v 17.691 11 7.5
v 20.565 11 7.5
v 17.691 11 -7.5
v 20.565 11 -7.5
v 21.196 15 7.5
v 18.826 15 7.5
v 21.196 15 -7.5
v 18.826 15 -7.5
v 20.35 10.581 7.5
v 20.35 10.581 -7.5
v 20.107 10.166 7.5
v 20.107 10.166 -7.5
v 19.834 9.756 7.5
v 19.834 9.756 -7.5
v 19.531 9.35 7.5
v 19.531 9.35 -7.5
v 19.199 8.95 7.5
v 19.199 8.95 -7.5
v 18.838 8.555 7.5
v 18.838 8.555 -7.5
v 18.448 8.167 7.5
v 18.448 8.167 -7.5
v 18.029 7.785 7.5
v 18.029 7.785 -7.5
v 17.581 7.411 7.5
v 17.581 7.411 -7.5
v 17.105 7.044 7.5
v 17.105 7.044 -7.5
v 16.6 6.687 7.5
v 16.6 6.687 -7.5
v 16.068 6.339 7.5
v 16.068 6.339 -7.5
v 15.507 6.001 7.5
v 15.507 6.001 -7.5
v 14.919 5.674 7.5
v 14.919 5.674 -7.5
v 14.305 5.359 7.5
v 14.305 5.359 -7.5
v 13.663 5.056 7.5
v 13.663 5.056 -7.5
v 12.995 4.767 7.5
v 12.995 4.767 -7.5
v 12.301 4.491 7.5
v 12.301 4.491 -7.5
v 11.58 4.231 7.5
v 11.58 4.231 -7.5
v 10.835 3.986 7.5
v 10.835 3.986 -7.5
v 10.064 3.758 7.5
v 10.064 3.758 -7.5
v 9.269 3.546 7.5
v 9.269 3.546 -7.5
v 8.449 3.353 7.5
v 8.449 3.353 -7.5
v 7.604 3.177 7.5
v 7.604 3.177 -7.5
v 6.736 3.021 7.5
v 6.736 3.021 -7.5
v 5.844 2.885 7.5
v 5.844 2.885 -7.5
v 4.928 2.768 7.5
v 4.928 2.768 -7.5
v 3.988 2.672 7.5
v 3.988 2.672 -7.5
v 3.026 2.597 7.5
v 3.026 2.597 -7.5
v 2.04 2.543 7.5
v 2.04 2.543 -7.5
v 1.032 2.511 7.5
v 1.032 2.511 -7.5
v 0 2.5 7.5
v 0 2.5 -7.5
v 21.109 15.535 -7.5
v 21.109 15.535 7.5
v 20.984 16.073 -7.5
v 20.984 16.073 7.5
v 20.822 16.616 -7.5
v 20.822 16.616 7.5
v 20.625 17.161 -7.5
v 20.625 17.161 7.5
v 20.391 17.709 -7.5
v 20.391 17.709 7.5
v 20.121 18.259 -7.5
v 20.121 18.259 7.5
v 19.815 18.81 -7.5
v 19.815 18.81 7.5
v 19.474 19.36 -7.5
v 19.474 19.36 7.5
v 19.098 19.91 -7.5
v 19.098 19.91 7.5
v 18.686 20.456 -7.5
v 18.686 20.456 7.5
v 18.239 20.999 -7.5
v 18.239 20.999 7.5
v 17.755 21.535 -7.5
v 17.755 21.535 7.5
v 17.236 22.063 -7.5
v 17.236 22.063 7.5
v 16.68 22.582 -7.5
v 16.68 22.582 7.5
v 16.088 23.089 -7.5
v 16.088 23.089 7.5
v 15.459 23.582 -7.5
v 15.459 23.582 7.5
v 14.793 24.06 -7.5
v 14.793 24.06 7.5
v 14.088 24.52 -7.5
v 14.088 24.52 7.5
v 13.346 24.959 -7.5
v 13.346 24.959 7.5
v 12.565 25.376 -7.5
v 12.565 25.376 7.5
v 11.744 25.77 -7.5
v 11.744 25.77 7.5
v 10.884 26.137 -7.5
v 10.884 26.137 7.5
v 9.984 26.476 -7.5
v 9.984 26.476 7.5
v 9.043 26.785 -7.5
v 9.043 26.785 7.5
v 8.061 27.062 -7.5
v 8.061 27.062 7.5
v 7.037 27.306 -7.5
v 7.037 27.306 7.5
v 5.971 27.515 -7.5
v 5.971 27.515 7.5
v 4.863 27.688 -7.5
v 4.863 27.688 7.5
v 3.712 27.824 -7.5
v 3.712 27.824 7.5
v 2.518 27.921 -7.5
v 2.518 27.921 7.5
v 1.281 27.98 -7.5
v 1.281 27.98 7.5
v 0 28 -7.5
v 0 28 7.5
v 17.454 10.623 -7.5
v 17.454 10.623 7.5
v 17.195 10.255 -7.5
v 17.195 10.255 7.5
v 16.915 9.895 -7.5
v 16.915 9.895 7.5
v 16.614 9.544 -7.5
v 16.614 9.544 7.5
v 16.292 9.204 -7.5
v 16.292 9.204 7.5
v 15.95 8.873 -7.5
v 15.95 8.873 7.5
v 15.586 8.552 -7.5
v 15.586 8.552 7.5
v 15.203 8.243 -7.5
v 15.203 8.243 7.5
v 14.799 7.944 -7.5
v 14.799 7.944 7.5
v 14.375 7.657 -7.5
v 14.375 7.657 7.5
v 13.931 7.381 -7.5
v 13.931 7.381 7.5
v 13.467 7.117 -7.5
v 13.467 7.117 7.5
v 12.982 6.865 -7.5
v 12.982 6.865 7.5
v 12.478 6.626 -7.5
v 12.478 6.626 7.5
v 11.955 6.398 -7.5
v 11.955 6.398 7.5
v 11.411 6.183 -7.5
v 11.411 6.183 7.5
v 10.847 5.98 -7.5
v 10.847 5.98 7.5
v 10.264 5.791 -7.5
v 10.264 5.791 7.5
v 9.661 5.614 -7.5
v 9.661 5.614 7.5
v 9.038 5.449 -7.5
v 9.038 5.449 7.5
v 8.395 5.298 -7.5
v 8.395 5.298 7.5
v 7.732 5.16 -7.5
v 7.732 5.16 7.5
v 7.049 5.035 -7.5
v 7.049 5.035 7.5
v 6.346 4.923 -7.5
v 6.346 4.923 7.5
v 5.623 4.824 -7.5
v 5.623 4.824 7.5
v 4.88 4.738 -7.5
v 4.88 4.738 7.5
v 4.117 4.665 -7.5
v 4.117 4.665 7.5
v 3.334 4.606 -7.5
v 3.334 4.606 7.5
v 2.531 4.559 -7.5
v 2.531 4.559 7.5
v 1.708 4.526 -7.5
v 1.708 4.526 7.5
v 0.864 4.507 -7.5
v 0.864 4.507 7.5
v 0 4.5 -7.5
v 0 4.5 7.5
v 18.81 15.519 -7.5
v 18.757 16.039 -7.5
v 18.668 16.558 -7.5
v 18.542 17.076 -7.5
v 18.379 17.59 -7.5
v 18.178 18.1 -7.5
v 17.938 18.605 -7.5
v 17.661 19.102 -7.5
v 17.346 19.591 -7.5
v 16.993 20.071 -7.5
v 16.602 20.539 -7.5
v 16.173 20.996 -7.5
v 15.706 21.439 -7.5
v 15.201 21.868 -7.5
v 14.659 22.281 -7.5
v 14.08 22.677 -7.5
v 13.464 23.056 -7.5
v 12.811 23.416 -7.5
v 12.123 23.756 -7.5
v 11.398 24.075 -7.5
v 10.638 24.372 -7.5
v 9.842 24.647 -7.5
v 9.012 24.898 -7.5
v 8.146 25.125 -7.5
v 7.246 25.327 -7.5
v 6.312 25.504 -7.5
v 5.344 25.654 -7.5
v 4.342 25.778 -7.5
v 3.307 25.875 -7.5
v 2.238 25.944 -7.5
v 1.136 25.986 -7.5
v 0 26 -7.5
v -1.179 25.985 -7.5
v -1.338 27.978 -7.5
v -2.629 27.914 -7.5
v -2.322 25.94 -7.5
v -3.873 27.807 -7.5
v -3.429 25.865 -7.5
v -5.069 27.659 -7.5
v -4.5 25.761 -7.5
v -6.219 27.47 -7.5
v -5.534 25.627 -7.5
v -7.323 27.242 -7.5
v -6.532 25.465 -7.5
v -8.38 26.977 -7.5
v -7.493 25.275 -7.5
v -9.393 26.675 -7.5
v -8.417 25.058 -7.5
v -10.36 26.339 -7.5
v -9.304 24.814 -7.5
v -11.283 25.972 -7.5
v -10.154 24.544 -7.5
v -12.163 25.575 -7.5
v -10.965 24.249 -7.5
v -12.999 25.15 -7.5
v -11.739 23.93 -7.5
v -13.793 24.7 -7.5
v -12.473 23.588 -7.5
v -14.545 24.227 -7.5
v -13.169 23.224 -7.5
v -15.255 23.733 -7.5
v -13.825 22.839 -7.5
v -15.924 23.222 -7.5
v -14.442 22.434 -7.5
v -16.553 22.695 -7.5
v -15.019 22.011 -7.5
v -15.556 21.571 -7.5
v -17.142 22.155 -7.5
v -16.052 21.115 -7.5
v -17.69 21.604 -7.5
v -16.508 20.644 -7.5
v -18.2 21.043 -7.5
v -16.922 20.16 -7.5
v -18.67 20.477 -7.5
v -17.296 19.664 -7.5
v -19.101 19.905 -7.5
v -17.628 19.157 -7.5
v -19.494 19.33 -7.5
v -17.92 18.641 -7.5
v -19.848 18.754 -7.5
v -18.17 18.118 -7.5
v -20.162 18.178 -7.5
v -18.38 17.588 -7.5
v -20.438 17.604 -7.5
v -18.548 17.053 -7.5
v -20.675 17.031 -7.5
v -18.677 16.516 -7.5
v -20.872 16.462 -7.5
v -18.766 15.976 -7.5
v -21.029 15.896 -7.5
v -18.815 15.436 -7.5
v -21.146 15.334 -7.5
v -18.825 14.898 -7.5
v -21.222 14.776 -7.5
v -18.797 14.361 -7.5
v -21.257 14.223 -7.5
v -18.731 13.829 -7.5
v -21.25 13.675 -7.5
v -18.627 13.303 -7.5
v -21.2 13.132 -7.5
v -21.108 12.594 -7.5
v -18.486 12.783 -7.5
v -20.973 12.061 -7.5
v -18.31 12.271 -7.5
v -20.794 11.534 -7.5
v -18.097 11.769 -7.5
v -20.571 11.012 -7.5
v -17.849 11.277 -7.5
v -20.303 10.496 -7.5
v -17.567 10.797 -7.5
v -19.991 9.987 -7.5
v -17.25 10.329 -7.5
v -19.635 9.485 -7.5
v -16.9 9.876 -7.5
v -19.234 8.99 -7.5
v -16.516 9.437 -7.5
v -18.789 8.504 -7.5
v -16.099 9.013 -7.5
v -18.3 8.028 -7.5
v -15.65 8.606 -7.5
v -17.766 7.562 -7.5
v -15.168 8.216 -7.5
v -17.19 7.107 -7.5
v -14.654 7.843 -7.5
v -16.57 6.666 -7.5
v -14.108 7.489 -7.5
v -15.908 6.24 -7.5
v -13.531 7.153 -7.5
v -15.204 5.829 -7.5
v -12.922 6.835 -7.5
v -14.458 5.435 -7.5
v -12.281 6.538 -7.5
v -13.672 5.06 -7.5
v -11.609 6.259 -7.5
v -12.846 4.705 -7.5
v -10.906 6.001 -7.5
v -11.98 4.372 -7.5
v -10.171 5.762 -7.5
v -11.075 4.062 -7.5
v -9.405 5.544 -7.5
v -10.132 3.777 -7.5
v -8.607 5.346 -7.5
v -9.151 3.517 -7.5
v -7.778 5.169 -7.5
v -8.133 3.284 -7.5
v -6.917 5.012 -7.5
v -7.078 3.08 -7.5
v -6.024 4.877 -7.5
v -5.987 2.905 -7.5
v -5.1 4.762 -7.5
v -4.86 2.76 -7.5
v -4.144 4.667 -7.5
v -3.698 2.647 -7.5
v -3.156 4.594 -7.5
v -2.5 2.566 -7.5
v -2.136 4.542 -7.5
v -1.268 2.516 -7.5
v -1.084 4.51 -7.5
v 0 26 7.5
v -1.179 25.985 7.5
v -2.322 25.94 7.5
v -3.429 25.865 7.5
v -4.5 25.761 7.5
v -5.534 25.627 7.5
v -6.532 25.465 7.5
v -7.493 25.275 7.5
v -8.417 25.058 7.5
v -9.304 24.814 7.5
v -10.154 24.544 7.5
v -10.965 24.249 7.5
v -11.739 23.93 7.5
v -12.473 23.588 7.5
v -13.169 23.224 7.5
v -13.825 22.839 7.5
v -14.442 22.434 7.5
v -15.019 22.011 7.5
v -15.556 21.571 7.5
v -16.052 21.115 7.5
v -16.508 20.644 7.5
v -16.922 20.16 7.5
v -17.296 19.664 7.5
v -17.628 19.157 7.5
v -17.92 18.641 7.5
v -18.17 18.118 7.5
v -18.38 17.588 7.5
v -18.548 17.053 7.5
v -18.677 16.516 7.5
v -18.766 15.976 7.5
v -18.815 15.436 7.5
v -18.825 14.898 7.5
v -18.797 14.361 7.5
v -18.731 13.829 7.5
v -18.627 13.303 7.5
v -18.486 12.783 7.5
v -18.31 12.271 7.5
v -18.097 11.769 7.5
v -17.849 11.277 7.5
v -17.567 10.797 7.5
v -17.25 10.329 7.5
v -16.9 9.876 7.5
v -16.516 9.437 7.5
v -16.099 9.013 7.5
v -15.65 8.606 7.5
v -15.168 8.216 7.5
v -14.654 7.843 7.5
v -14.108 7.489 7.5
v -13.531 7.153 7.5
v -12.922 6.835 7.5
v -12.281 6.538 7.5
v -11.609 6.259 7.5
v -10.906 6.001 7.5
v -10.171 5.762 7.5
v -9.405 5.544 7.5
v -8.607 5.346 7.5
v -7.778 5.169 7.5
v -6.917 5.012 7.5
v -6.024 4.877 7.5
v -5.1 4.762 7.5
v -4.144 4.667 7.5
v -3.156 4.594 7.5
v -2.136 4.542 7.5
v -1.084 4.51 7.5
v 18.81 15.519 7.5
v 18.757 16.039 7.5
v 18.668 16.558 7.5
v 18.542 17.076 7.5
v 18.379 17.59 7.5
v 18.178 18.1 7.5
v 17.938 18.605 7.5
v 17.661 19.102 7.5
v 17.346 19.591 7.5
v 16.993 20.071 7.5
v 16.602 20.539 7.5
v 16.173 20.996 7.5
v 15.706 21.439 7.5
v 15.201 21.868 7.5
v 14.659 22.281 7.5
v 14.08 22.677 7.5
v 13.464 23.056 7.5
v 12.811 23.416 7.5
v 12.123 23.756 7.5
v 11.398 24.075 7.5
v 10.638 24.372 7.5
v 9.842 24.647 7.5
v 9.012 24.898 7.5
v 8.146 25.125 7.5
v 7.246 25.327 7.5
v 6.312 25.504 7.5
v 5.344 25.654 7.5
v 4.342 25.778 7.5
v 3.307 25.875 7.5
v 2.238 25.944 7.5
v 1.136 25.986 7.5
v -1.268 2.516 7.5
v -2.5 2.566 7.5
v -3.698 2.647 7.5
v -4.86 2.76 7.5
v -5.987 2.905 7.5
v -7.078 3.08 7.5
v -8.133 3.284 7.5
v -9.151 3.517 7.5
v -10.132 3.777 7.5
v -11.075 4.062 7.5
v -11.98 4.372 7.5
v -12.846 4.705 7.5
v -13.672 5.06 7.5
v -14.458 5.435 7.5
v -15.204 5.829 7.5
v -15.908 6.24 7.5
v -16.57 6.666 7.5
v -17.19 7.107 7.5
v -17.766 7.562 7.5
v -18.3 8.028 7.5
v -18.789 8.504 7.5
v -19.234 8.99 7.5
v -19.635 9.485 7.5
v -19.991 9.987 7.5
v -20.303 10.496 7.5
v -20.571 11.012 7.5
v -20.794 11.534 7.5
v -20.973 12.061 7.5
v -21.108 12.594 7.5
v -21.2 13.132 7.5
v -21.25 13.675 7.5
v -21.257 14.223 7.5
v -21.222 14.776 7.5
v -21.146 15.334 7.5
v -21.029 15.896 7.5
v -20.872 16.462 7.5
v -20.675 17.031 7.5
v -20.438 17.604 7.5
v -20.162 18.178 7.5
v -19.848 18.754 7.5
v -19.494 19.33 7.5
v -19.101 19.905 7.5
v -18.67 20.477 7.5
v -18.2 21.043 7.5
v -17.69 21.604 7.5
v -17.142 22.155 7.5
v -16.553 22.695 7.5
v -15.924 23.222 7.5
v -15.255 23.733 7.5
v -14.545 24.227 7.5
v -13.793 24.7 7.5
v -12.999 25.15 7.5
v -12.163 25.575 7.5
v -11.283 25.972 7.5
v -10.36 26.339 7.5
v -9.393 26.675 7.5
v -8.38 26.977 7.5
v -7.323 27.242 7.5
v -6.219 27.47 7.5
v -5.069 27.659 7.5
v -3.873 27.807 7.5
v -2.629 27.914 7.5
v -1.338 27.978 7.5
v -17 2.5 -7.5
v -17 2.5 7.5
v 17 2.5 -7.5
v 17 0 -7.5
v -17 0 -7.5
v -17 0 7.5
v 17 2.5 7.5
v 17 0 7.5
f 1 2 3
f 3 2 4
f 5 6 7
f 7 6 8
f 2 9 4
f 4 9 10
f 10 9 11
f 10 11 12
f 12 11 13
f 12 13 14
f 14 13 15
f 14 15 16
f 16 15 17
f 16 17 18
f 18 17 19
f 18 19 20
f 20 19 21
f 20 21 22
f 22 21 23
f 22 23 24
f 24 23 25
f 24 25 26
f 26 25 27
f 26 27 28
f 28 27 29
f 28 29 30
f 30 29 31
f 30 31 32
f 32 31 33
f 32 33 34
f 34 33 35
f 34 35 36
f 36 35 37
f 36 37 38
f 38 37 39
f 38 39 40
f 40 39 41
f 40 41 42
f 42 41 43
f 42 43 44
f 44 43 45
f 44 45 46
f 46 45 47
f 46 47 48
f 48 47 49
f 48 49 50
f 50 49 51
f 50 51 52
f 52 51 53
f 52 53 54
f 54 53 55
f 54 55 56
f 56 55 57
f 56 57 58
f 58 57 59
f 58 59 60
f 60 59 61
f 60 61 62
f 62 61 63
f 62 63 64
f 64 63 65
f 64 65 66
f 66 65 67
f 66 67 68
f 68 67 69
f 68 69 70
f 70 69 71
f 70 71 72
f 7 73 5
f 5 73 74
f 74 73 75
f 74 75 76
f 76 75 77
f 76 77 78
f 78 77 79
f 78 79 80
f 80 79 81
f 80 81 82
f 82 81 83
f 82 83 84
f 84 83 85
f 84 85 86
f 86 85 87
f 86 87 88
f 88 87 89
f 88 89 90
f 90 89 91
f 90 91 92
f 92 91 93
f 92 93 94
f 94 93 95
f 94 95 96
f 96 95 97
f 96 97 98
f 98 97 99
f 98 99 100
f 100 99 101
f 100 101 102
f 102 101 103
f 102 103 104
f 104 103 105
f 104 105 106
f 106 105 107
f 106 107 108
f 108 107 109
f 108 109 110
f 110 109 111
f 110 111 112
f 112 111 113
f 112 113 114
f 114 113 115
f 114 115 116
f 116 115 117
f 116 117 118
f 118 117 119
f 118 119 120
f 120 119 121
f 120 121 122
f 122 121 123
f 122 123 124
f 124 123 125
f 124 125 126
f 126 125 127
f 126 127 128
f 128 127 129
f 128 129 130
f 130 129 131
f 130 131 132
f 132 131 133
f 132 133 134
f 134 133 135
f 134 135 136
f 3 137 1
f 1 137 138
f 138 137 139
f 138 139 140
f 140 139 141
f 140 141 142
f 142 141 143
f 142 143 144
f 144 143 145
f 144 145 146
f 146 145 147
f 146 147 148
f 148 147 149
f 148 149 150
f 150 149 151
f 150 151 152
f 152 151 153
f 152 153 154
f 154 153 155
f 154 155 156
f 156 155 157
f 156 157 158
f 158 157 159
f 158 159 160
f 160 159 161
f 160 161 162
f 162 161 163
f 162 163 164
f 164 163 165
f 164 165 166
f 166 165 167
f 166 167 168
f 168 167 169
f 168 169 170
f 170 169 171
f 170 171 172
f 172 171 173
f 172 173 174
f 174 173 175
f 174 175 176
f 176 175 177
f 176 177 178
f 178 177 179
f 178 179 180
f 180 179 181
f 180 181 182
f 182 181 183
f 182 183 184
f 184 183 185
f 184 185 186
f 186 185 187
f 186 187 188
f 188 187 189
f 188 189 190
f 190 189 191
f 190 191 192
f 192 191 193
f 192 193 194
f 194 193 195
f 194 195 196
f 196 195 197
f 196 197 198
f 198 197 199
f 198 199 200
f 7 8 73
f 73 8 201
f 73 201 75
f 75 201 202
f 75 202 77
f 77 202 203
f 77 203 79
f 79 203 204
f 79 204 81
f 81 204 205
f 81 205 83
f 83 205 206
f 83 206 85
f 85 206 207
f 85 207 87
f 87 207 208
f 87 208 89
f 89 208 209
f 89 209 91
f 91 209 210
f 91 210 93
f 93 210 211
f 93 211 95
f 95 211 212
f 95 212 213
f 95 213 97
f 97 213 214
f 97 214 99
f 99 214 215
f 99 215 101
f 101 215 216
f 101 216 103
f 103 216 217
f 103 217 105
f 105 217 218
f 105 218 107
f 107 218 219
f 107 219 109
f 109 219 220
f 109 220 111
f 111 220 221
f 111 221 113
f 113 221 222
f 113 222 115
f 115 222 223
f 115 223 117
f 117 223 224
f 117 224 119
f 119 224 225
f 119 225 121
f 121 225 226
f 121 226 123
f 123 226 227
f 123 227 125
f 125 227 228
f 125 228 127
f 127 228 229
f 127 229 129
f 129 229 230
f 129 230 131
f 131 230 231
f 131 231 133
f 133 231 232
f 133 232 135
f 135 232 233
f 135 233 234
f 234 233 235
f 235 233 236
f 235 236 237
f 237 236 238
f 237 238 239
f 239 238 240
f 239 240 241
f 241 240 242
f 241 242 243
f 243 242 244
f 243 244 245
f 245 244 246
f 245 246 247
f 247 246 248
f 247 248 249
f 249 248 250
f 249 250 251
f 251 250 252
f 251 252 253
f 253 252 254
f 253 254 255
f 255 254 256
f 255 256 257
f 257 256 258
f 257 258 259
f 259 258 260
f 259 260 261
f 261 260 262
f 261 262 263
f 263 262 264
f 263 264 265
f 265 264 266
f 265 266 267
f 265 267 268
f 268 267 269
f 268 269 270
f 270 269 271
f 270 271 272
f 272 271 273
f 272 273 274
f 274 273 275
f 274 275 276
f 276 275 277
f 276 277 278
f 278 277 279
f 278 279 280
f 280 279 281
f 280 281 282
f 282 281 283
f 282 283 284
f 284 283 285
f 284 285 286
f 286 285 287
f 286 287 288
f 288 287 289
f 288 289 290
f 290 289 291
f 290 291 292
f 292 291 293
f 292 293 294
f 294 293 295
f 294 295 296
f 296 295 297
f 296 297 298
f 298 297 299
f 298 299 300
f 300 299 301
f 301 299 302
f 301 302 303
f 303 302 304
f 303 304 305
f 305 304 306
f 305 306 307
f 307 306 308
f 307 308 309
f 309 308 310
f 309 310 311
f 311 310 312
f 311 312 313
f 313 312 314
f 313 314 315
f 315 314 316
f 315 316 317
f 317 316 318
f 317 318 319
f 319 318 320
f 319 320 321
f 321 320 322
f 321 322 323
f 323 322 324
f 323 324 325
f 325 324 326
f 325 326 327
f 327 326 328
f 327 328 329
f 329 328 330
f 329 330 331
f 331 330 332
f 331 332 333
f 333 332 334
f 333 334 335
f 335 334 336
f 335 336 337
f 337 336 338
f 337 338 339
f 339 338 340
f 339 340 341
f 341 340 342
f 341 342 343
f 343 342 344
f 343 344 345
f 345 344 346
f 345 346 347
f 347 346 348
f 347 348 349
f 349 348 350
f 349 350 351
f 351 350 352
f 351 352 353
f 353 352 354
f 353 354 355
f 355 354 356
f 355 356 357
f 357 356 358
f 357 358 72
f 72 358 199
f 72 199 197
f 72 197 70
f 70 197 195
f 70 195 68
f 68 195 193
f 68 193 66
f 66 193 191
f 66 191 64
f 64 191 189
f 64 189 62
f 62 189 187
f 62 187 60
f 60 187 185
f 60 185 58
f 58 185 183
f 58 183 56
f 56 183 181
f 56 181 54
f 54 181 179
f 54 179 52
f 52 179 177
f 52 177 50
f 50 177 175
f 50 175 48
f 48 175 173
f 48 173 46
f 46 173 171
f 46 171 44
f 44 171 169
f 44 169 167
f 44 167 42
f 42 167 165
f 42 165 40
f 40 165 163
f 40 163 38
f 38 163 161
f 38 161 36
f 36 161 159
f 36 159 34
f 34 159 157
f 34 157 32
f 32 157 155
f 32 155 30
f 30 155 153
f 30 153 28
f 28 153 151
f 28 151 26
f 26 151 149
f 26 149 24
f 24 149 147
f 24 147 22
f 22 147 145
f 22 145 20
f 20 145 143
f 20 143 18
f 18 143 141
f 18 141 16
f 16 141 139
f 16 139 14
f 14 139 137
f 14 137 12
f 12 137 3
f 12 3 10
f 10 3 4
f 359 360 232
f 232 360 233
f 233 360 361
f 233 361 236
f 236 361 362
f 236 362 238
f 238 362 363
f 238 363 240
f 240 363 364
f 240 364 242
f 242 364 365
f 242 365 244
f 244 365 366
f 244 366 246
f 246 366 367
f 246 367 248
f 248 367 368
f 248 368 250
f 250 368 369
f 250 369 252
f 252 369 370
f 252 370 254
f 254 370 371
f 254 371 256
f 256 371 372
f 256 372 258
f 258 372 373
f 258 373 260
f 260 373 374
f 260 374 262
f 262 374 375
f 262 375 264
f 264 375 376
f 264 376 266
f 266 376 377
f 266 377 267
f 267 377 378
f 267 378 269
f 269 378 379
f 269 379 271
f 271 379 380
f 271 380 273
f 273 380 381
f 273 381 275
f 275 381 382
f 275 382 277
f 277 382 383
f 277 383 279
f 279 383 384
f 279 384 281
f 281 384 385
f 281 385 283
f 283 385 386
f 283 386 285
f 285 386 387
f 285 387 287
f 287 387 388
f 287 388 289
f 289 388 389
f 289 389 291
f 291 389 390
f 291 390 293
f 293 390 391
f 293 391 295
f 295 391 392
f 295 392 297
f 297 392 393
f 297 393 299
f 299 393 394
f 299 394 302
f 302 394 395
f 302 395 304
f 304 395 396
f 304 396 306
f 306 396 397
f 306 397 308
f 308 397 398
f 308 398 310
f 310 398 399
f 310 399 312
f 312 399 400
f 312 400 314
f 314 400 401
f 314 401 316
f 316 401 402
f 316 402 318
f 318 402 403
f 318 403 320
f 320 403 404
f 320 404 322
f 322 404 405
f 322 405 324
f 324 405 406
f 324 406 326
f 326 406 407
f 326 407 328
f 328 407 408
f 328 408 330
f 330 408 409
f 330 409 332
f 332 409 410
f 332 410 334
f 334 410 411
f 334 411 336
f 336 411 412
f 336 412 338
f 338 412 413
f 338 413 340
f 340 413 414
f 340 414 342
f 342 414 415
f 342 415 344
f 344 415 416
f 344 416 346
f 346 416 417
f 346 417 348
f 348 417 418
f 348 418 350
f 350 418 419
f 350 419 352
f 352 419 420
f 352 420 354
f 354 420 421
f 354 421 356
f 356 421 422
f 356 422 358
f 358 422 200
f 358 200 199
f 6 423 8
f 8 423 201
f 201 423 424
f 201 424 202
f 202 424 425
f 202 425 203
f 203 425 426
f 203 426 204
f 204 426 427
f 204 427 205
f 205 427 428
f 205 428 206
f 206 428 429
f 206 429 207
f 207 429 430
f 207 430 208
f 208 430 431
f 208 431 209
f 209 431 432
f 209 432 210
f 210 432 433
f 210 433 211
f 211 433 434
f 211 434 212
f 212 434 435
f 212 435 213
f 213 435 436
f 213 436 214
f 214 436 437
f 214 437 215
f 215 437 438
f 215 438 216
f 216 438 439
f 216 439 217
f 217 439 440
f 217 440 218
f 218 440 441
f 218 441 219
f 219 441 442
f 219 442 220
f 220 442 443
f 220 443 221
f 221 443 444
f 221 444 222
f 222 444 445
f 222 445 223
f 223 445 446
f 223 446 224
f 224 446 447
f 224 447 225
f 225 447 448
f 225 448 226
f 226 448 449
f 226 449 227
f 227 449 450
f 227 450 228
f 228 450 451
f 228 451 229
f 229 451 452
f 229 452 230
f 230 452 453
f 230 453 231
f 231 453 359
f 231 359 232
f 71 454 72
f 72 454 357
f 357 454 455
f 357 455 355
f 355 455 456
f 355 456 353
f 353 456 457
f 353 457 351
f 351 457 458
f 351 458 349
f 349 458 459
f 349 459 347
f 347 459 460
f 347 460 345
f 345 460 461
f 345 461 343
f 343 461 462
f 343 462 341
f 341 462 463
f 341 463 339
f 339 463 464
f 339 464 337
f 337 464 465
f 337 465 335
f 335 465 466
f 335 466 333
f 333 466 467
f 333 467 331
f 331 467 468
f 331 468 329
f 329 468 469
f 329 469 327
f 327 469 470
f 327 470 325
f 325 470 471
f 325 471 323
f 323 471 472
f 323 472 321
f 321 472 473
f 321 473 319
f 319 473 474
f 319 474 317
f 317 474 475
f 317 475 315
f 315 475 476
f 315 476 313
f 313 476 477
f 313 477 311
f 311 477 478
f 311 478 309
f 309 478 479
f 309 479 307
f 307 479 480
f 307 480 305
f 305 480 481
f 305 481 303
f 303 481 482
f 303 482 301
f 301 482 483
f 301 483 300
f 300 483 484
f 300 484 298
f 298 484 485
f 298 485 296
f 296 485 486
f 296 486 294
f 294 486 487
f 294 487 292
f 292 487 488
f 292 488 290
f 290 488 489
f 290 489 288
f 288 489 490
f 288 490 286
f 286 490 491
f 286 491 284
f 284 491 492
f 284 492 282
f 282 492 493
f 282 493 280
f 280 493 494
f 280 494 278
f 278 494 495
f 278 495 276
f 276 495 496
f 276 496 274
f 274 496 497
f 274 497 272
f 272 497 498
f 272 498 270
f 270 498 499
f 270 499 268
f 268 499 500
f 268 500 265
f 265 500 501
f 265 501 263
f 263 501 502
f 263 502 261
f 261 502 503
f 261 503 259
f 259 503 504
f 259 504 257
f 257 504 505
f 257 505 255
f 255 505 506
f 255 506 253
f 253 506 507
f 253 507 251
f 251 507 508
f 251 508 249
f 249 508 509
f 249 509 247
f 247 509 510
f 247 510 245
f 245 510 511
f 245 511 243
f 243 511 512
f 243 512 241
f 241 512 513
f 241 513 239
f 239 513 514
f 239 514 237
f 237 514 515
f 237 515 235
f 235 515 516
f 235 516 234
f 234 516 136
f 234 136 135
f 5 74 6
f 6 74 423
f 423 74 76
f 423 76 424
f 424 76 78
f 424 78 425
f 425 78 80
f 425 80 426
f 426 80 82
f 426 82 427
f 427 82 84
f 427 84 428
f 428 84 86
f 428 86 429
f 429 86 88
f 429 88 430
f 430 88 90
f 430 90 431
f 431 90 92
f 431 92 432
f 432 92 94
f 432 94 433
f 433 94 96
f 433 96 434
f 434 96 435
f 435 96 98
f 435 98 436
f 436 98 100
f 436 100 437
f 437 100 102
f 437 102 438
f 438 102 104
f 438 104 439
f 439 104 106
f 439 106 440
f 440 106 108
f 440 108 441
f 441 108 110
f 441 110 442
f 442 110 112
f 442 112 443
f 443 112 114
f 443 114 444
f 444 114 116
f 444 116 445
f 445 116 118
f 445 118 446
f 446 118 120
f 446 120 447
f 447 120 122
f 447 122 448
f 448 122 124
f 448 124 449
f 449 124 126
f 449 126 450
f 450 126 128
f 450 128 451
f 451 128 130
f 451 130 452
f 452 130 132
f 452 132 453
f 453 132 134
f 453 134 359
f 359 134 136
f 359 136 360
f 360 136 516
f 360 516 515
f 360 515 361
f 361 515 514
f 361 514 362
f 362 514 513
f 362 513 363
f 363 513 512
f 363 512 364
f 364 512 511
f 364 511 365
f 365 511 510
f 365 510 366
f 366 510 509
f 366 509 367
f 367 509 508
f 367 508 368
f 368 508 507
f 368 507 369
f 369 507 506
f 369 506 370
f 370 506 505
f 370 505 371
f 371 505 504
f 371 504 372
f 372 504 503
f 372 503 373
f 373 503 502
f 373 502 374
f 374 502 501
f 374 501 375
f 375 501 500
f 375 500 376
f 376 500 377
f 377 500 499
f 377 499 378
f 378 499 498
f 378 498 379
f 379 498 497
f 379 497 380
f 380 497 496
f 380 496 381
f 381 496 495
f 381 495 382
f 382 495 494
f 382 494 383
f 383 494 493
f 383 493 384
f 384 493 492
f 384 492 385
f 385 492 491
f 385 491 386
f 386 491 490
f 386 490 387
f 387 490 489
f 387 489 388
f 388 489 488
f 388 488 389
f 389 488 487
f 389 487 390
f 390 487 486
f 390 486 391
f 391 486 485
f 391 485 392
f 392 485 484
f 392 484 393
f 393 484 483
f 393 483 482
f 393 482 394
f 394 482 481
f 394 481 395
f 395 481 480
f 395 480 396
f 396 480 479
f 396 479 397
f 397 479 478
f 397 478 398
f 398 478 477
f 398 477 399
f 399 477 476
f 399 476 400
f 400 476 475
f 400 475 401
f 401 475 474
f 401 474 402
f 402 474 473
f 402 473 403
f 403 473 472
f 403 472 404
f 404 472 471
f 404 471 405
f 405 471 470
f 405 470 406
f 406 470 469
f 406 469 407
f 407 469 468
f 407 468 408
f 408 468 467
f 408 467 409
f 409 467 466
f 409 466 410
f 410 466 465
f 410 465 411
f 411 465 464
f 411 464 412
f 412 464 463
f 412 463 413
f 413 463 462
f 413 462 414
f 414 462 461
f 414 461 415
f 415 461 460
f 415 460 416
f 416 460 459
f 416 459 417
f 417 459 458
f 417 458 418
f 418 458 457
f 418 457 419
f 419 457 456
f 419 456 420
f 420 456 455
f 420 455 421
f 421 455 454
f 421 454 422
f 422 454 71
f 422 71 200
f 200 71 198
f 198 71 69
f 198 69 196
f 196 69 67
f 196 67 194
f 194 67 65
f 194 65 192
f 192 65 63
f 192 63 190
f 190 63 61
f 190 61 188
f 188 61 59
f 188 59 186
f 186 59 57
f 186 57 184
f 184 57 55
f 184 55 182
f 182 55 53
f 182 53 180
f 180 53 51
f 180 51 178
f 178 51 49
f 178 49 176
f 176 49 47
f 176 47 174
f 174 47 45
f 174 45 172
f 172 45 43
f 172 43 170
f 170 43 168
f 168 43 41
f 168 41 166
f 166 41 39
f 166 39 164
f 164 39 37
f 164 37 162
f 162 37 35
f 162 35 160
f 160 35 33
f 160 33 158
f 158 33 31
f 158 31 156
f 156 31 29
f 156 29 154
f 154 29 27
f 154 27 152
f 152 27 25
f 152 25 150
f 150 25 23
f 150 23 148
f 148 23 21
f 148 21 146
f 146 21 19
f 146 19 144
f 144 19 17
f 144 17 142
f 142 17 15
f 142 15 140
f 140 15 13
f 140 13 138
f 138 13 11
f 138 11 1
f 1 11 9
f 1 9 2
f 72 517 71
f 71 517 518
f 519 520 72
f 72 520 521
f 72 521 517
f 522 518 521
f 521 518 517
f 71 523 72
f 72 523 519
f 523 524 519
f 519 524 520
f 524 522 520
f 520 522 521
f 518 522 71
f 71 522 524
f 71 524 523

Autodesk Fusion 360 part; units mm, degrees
sketch "Esquisse1" plane through (0, 0, 0) normal (0, 0, 1) x (1, 0, 0)
  line L0 (0, 0) -> (-17, 0)
  line L1 (-17, 0) -> (-17, 2.5)
  line L2 (-17, 2.5) -> (0, 2.5)
  spline S0 degree 5 poles (0, 2.5) (-1.0965, 2.5) (-3.2261, 2.5598) (-6.2303, 2.8288) (-9.8493, 3.531) (-13.6923, 4.8943) (-16.8066, 6.6306) (-19.1448, 8.6248) (-20.6721, 10.7786) (-21.3856, 13.0364) (-21.3178, 15.3875) (-20.5097, 17.8225) (-18.9943, 20.3035) (-16.7753, 22.7185) (-13.8294, 24.8979) (-10.1172, 26.6515) (-6.4978, 27.5688) (-3.4001, 27.9216) (-1.1622, 28) (0, 28) knots 0 0 0 0 0 0 0.066667 0.133333 0.2 0.266667 0.333333 0.4 0.466667 0.533333 0.6 0.666667 0.733333 0.8 0.866667 0.933333 1 1 1 1 1 1
  line L3 (0, 1.75) -> (0, 22.5)
  spline S1 degree 5 poles (0, 2.5) (1.0965, 2.5) (3.2261, 2.5598) (6.2303, 2.8288) (9.8493, 3.531) (13.6923, 4.8943) (16.8066, 6.6306) (19.1448, 8.6248) (20.6721, 10.7786) (21.3856, 13.0364) (21.3178, 15.3875) (20.5097, 17.8225) (18.9943, 20.3035) (16.7753, 22.7185) (13.8294, 24.8979) (10.1172, 26.6515) (6.4978, 27.5688) (3.4001, 27.9216) (1.1622, 28) (0, 28) knots 0 0 0 0 0 0 0.066667 0.133333 0.2 0.266667 0.333333 0.4 0.466667 0.533333 0.6 0.666667 0.733333 0.8 0.866667 0.933333 1 1 1 1 1 1
  line L4 (5.5634, 2.5) -> (-5.5634, 2.5)
  line L5 (-5.6976, 28) -> (5.6976, 28)
  line L6 (-5.5634, 2.5) -> (5.5634, 2.5)
  line L7 (5.6976, 28) -> (-5.6976, 28)
  line L8 (17, 2.5) -> (0, 2.5)
  line L9 (17, 0) -> (17, 2.5)
  line L10 (0, 0) -> (17, 0)
  spline S2 degree 5 poles (0, 4.5) (-0.9387, 4.5) (-2.7577, 4.5381) (-5.3111, 4.7097) (-8.3672, 5.1669) (-11.6138, 6.1149) (-14.2899, 7.4272) (-16.3901, 9.079) (-17.8969, 11.0271) (-18.7777, 13.2009) (-18.9888, 15.5036) (-18.4869, 17.8249) (-17.2389, 20.0482) (-15.2396, 22.061) (-12.5063, 23.7593) (-9.0653, 25.051) (-5.7682, 25.6992) (-2.9986, 25.9453) (-1.0213, 26) (0, 26) knots 0 0 0 0 0 0 0.066667 0.133333 0.2 0.266667 0.333333 0.4 0.466667 0.533333 0.6 0.666667 0.733333 0.8 0.866667 0.933333 1 1 1 1 1 1
  line L11 (5.5569, 4.5) -> (-5.5569, 4.5)
  line L12 (-5.6998, 26) -> (5.6998, 26)
  line L13 (1.75, 0) -> (22.5, 0)
  line L14 (0, 2.5) -> (0, 4.5)
  line L15 (0, 26) -> (0, 28)
  spline S3 degree 5 poles (0, 4.5) (0.9387, 4.5) (2.7577, 4.5381) (5.3111, 4.7097) (8.3672, 5.1669) (11.6138, 6.1149) (14.2899, 7.4272) (16.3901, 9.079) (17.8969, 11.0271) (18.7777, 13.2009) (18.9888, 15.5036) (18.4869, 17.8249) (17.2389, 20.0482) (15.2396, 22.061) (12.5063, 23.7593) (9.0653, 25.051) (5.7682, 25.6992) (2.9986, 25.9453) (1.0213, 26) (0, 26) knots 0 0 0 0 0 0 0.066667 0.133333 0.2 0.266667 0.333333 0.4 0.466667 0.533333 0.6 0.666667 0.733333 0.8 0.866667 0.933333 1 1 1 1 1 1
  line L16 (-5.5569, 4.5) -> (5.5569, 4.5)
  line L17 (5.6998, 26) -> (-5.6998, 26)
  point P0 (-20, 10)
  point P1 (-19.992, 18.499)
  point P2 (20, 10)
  point P3 (19.992, 18.499)
  point P4 (-17, 10)
  point P5 (-17.992, 18.499)
  point P6 (17, 10)
  point P7 (17.992, 18.499)
  dimension "d1" = 17
  dimension "d3" = 2.5
  dimension "d8" = 28
  dimension "d9" = 20
  dimension "d10" = 19.992
  dimension "d11" = 2
  dimension "d12" = 17
  dimension "d14" = 17.992
  dimension "d15" = 26
extrude "Extrusion2" add sketch "Esquisse1" along normal mid plane 15 contours S0 L3 S2 L14 L15 | L3 S1 L14 L15 S3 | L0 L1 L2 L4 L6 L8 L9 L10 L13
sketch "Esquisse2" plane through (0, 0, 7.5) normal (0, 0, 1) x (-1, 0, 0)
  spline S0 degree 5 poles (0, -26) (-1.0213, -26) (-2.9986, -25.9453) (-5.7682, -25.6992) (-9.0653, -25.051) (-12.5063, -23.7593) (-15.2396, -22.061) (-17.2389, -20.0482) (-18.4869, -17.8249) (-18.9888, -15.5036) (-18.7777, -13.2009) (-17.8969, -11.0271) (-16.3901, -9.079) (-14.2899, -7.4272) (-11.6138, -6.1149) (-8.3672, -5.1669) (-5.3111, -4.7097) (-2.7577, -4.5381) (-0.9387, -4.5) (0, -4.5) knots -1 -1 -1 -1 -1 -1 -0.933333 -0.866667 -0.8 -0.733333 -0.666667 -0.6 -0.533333 -0.466667 -0.4 -0.333333 -0.266667 -0.2 -0.133333 -0.066667 0 0 0 0 0 0
  spline S1 degree 5 poles (0, -4.5) (0.9387, -4.5) (2.7577, -4.5381) (5.3111, -4.7097) (8.3672, -5.1669) (11.6138, -6.1149) (14.2899, -7.4272) (16.3901, -9.079) (17.8969, -11.0271) (18.7777, -13.2009) (18.9888, -15.5036) (18.4869, -17.8249) (17.2389, -20.0482) (15.2396, -22.061) (12.5063, -23.7593) (9.0653, -25.051) (5.7682, -25.6992) (2.9986, -25.9453) (1.0213, -26) (0, -26) knots 0 0 0 0 0 0 0.066667 0.133333 0.2 0.266667 0.333333 0.4 0.466667 0.533333 0.6 0.666667 0.733333 0.8 0.866667 0.933333 1 1 1 1 1 1
  spline S2 degree 5 poles (0, -2.5) (-1.0965, -2.5) (-3.2261, -2.5598) (-6.2303, -2.8288) (-9.8493, -3.531) (-13.6923, -4.8943) (-16.8066, -6.6306) (-19.1448, -8.6248) (-20.6721, -10.7786) (-21.3856, -13.0364) (-21.3178, -15.3875) (-20.5097, -17.8225) (-18.9943, -20.3035) (-16.7753, -22.7185) (-13.8294, -24.8979) (-10.1172, -26.6515) (-6.4978, -27.5688) (-3.4001, -27.9216) (-1.1622, -28) (0, -28) knots 0 0 0 0 0 0 0.066667 0.133333 0.2 0.266667 0.333333 0.4 0.466667 0.533333 0.6 0.666667 0.733333 0.8 0.866667 0.933333 1 1 1 1 1 1
  spline S3 degree 5 poles (0, -28) (1.1622, -28) (3.4001, -27.9216) (6.4978, -27.5688) (10.1172, -26.6515) (13.8294, -24.8979) (16.7753, -22.7185) (18.9943, -20.3035) (20.5097, -17.8225) (21.3178, -15.3875) (21.3856, -13.0364) (20.6721, -10.7786) (19.1448, -8.6248) (16.8066, -6.6306) (13.6923, -4.8943) (9.8493, -3.531) (6.2303, -2.8288) (3.2261, -2.5598) (1.0965, -2.5) (0, -2.5) knots -1 -1 -1 -1 -1 -1 -0.933333 -0.866667 -0.8 -0.733333 -0.666667 -0.6 -0.533333 -0.466667 -0.4 -0.333333 -0.266667 -0.2 -0.133333 -0.066667 0 0 0 0 0 0
  line L0 (-23, -15) -> (-11, -15)
  line L1 (-11, -15) -> (-11, -11)
  line L2 (-11, -11) -> (-23, -11)
  line L3 (-23, -11) -> (-23, -15)
  line L4 (-23, -15) -> (-11, -11) construction
  line L5 (-11, -15) -> (-23, -11) construction
  point P0 (-17, -13)
  dimension "d20" = 4
extrude "Extrusion3" cut sketch "Esquisse2" against normal blind 15 contours S0 S2 L0 L2
